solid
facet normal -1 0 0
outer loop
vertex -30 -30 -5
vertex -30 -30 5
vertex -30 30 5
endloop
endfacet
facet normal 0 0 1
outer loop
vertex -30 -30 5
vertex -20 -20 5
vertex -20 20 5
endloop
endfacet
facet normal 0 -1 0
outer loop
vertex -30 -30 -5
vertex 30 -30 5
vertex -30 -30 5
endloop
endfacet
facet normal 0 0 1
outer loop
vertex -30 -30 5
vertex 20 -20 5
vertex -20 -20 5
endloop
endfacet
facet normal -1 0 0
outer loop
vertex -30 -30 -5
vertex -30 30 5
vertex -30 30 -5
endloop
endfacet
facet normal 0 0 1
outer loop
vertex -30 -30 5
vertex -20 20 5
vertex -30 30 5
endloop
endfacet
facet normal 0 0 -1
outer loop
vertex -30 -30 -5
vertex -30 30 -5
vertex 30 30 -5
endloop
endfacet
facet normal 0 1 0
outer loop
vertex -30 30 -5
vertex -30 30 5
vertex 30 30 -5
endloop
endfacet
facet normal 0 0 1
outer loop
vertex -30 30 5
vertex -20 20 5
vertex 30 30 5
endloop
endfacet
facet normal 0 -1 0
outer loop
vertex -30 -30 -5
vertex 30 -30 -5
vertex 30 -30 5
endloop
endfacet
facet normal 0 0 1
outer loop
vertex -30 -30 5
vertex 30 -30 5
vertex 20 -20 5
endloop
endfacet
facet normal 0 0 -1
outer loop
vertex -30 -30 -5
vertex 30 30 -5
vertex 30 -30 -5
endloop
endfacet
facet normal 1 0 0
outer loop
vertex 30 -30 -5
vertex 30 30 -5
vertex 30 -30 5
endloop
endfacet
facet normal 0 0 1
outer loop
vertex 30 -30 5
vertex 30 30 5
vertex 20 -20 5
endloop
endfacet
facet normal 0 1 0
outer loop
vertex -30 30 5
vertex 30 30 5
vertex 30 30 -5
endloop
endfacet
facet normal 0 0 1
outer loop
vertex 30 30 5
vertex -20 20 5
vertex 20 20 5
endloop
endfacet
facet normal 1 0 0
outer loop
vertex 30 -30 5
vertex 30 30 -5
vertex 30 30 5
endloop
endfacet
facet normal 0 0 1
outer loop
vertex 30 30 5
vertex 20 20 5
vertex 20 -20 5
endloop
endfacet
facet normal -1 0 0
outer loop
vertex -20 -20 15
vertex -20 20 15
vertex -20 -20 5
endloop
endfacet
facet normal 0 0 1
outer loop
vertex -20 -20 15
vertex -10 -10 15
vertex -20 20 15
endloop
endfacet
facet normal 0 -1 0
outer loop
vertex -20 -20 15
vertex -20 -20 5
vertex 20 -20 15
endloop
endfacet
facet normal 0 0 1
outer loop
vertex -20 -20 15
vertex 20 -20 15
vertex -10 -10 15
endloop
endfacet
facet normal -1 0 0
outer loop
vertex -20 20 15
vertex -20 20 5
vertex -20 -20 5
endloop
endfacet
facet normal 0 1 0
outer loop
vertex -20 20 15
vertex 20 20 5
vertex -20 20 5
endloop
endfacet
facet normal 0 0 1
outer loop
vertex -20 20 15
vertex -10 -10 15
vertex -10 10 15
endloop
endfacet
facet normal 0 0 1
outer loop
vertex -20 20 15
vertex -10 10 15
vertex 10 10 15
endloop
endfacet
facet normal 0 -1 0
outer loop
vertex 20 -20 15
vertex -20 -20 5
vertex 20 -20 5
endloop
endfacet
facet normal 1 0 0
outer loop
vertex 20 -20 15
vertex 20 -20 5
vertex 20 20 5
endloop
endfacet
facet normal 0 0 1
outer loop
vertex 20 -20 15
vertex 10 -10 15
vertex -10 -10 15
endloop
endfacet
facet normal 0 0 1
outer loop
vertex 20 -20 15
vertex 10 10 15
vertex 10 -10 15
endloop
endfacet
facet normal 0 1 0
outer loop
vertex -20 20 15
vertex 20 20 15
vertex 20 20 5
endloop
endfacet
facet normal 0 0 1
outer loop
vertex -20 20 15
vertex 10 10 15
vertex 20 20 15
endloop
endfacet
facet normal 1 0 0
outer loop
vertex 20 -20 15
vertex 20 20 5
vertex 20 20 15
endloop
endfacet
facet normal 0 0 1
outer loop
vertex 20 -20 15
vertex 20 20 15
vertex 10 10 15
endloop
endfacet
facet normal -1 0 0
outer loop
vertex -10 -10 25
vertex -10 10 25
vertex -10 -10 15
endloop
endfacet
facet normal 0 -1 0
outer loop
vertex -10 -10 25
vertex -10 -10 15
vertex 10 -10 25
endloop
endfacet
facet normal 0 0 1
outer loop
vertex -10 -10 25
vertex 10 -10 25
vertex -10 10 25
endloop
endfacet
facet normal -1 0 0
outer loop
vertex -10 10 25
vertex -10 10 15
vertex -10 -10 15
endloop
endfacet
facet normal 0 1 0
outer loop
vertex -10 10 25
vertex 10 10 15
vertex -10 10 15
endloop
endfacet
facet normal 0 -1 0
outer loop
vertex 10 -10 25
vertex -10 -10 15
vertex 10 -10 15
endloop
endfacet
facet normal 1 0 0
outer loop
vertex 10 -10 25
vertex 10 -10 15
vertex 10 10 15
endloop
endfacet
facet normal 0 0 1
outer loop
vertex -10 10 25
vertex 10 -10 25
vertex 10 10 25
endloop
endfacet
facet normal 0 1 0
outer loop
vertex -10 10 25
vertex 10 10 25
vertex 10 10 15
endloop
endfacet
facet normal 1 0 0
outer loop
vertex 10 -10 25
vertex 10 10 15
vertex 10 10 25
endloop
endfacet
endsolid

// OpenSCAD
// 1段目 (底辺: 60x60x10, 位置: z=0)
translate([0, 0, 0]) {
    cube([60, 60, 10], center = true);
}

// 2段目 (中段: 40x40x10, 位置: z=10)
translate([0, 0, 10]) {
    cube([40, 40, 10], center = true);
}

// 3段目 (上段: 20x20x10, 位置: z=20)
translate([0, 0, 20]) {
    cube([20, 20, 10], center = true);
}
